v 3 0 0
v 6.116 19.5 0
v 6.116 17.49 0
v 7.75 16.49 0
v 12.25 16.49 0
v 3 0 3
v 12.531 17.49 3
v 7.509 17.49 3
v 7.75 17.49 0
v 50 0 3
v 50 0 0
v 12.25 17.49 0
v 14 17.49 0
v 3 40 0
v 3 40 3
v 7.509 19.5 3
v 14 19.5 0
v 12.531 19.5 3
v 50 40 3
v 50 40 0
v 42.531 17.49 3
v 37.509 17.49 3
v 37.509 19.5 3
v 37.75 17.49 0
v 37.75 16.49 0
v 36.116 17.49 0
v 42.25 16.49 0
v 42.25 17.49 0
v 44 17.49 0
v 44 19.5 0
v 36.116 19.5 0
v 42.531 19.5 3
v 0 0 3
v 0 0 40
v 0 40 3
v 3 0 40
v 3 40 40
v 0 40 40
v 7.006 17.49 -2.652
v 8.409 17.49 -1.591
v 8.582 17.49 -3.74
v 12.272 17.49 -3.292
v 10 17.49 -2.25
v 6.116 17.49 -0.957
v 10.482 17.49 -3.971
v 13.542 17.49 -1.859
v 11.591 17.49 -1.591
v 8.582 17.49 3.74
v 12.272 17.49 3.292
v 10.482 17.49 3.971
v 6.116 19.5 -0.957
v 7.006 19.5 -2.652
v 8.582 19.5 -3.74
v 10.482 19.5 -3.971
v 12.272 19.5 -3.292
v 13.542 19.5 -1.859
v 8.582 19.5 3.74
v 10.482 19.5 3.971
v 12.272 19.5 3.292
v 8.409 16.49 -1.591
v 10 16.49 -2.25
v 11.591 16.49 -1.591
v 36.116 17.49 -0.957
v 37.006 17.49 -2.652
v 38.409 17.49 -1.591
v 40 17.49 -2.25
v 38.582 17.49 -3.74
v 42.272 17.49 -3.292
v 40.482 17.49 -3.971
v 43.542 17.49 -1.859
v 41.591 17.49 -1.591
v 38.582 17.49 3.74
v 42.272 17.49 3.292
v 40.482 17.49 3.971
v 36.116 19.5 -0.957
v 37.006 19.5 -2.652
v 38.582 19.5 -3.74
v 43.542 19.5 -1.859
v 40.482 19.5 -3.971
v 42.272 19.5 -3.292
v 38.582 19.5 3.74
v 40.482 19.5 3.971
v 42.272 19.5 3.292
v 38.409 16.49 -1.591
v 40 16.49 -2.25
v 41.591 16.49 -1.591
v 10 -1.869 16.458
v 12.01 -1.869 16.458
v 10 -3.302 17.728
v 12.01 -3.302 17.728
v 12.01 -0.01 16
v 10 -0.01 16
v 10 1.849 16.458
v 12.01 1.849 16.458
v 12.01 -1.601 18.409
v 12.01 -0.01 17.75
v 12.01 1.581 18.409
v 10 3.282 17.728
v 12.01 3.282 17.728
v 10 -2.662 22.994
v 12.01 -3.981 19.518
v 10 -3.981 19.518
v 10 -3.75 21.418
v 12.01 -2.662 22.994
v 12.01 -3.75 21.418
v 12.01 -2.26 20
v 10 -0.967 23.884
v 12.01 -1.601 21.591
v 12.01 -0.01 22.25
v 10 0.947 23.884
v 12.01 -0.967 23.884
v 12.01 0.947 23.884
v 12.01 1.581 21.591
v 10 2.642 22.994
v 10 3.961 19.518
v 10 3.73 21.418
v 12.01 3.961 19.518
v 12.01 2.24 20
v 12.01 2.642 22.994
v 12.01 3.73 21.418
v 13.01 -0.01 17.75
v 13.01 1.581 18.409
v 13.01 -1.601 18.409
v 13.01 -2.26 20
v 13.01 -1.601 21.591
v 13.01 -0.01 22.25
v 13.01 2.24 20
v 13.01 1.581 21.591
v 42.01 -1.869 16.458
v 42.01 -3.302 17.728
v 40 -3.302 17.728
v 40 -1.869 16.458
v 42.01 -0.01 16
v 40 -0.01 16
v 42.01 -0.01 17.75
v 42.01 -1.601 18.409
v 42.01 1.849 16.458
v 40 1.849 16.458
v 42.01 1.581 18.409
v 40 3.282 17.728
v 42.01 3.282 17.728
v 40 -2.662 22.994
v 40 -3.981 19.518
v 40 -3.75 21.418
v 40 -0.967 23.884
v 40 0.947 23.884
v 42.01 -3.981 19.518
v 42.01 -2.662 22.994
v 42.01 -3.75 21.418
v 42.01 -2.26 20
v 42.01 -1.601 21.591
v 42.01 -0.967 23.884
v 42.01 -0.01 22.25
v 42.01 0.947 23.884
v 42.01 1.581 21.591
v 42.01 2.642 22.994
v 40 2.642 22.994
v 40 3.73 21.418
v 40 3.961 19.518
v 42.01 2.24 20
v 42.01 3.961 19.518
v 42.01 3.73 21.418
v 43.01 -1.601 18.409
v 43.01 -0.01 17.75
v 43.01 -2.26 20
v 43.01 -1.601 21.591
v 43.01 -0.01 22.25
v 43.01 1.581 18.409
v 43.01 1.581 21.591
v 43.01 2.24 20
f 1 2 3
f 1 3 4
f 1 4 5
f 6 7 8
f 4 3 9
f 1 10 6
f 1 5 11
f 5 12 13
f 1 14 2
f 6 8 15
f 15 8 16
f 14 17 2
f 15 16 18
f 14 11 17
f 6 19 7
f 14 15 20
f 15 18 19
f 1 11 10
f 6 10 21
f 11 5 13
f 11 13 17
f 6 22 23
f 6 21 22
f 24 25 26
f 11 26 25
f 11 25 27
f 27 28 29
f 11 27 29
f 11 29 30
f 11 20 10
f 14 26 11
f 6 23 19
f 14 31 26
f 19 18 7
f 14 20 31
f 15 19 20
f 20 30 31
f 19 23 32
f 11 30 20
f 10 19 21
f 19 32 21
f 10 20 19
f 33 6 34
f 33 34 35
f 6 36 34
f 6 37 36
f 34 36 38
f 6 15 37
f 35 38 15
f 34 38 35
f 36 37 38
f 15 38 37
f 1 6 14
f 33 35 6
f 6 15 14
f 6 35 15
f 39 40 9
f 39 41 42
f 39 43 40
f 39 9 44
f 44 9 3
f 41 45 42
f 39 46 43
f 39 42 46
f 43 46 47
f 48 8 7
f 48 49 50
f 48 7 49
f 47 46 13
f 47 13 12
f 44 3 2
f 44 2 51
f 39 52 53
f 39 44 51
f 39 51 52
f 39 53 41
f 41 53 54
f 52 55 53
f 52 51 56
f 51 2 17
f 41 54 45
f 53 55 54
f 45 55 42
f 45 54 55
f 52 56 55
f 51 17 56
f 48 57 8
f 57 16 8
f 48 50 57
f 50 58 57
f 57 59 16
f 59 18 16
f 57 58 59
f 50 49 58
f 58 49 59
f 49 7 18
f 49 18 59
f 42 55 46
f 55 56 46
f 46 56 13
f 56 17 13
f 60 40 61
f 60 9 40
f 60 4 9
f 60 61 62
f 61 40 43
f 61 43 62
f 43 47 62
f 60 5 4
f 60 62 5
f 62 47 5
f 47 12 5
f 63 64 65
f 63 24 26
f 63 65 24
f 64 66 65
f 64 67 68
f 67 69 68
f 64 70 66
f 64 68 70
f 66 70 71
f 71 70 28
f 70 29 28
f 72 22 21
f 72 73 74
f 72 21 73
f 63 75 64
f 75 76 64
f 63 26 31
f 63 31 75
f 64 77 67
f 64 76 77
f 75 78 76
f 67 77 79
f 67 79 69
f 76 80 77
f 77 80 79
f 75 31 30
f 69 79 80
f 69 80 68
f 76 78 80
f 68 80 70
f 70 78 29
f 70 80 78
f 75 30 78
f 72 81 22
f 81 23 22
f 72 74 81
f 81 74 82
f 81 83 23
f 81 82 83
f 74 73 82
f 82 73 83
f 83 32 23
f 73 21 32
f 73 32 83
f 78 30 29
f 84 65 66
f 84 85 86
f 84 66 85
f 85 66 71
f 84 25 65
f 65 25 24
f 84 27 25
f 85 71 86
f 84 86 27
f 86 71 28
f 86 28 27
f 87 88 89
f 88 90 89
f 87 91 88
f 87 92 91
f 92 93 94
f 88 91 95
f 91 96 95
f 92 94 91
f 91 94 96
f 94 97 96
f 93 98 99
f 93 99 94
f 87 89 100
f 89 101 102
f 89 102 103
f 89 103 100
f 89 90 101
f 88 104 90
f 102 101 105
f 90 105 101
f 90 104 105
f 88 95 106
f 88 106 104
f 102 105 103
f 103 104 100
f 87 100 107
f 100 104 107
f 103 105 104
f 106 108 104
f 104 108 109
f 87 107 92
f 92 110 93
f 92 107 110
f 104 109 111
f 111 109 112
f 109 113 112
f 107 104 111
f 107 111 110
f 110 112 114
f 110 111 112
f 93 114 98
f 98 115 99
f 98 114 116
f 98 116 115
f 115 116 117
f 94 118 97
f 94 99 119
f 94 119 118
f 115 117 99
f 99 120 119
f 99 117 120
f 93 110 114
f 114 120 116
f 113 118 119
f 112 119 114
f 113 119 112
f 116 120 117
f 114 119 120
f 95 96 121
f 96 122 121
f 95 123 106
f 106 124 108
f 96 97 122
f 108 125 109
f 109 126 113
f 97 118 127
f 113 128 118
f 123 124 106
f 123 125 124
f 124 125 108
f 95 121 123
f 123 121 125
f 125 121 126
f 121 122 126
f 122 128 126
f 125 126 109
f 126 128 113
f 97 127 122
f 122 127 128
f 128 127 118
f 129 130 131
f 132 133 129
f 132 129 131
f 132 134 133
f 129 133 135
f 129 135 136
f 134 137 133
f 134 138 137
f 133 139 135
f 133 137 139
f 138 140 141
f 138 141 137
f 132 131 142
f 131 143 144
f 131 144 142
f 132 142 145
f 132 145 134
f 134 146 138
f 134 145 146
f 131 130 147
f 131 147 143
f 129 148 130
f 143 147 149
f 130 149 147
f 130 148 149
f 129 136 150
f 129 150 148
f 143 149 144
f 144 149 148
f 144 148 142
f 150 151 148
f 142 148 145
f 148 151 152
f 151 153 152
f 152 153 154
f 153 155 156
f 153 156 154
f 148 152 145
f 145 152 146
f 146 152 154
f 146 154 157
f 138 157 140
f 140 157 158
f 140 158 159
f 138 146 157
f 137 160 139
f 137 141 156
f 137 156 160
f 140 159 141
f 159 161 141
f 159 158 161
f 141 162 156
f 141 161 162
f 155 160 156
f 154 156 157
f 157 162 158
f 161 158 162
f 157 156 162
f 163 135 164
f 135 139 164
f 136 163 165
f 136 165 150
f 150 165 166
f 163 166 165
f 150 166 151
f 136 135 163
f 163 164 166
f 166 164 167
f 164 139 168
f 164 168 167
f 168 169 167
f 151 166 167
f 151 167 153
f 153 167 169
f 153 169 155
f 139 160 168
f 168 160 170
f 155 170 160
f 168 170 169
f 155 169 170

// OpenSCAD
// L‑bracket with countersunk M4 holes

module bracket() {
    // dimensions
    w = 50;          // horizontal width (X)
    d = 40;          // horizontal depth (Y)
    h = 3;           // plate thickness (Z for horizontal face)
    v = 3;           // vertical plate thickness (X)
    ht = 40;         // height of vertical plate (Z)

    eps = 0.01;      // small offset to avoid coplanar issues

    // Create the L shape
    difference() {
        union() {
            // horizontal face
            translate([0, 0, 0]) cube([w, d, h]);

            // vertical face
            translate([0, 0, 0]) cube([v, d, ht]);
        }
        // Remove the overlapping corner cube
        translate([0, 0, 0]) cube([v, d, h]);
    }

    // --------- Countersunk holes on horizontal face (XY plane) ----------
    for (x = [10, 40]) {
        // Big cone part (countersink)
        translate([x, d/2 - 0.5, 0])
            rotate([90, 0, 0])          // align along Z
                cylinder(r=4, h=2 + eps);

        // Small drill part
        translate([x, d/2 - 0.5, 0])
            rotate([90, 0, 0])
                cylinder(r=2.25, h=h + eps);
    }

    // --------- Countersunk holes on vertical face (XZ plane) ----------
    for (x = [10, 40]) {
        // Big cone part (countersink)
        translate([x, -eps, ht/2])
            rotate([0, 90, 0])          // align along Y
                cylinder(r=4, h=2 + eps);

        // Small drill part
        translate([x, -eps, ht/2])
            rotate([0, 90, 0])
                cylinder(r=2.25, h=v + eps);
    }
}

bracket();
